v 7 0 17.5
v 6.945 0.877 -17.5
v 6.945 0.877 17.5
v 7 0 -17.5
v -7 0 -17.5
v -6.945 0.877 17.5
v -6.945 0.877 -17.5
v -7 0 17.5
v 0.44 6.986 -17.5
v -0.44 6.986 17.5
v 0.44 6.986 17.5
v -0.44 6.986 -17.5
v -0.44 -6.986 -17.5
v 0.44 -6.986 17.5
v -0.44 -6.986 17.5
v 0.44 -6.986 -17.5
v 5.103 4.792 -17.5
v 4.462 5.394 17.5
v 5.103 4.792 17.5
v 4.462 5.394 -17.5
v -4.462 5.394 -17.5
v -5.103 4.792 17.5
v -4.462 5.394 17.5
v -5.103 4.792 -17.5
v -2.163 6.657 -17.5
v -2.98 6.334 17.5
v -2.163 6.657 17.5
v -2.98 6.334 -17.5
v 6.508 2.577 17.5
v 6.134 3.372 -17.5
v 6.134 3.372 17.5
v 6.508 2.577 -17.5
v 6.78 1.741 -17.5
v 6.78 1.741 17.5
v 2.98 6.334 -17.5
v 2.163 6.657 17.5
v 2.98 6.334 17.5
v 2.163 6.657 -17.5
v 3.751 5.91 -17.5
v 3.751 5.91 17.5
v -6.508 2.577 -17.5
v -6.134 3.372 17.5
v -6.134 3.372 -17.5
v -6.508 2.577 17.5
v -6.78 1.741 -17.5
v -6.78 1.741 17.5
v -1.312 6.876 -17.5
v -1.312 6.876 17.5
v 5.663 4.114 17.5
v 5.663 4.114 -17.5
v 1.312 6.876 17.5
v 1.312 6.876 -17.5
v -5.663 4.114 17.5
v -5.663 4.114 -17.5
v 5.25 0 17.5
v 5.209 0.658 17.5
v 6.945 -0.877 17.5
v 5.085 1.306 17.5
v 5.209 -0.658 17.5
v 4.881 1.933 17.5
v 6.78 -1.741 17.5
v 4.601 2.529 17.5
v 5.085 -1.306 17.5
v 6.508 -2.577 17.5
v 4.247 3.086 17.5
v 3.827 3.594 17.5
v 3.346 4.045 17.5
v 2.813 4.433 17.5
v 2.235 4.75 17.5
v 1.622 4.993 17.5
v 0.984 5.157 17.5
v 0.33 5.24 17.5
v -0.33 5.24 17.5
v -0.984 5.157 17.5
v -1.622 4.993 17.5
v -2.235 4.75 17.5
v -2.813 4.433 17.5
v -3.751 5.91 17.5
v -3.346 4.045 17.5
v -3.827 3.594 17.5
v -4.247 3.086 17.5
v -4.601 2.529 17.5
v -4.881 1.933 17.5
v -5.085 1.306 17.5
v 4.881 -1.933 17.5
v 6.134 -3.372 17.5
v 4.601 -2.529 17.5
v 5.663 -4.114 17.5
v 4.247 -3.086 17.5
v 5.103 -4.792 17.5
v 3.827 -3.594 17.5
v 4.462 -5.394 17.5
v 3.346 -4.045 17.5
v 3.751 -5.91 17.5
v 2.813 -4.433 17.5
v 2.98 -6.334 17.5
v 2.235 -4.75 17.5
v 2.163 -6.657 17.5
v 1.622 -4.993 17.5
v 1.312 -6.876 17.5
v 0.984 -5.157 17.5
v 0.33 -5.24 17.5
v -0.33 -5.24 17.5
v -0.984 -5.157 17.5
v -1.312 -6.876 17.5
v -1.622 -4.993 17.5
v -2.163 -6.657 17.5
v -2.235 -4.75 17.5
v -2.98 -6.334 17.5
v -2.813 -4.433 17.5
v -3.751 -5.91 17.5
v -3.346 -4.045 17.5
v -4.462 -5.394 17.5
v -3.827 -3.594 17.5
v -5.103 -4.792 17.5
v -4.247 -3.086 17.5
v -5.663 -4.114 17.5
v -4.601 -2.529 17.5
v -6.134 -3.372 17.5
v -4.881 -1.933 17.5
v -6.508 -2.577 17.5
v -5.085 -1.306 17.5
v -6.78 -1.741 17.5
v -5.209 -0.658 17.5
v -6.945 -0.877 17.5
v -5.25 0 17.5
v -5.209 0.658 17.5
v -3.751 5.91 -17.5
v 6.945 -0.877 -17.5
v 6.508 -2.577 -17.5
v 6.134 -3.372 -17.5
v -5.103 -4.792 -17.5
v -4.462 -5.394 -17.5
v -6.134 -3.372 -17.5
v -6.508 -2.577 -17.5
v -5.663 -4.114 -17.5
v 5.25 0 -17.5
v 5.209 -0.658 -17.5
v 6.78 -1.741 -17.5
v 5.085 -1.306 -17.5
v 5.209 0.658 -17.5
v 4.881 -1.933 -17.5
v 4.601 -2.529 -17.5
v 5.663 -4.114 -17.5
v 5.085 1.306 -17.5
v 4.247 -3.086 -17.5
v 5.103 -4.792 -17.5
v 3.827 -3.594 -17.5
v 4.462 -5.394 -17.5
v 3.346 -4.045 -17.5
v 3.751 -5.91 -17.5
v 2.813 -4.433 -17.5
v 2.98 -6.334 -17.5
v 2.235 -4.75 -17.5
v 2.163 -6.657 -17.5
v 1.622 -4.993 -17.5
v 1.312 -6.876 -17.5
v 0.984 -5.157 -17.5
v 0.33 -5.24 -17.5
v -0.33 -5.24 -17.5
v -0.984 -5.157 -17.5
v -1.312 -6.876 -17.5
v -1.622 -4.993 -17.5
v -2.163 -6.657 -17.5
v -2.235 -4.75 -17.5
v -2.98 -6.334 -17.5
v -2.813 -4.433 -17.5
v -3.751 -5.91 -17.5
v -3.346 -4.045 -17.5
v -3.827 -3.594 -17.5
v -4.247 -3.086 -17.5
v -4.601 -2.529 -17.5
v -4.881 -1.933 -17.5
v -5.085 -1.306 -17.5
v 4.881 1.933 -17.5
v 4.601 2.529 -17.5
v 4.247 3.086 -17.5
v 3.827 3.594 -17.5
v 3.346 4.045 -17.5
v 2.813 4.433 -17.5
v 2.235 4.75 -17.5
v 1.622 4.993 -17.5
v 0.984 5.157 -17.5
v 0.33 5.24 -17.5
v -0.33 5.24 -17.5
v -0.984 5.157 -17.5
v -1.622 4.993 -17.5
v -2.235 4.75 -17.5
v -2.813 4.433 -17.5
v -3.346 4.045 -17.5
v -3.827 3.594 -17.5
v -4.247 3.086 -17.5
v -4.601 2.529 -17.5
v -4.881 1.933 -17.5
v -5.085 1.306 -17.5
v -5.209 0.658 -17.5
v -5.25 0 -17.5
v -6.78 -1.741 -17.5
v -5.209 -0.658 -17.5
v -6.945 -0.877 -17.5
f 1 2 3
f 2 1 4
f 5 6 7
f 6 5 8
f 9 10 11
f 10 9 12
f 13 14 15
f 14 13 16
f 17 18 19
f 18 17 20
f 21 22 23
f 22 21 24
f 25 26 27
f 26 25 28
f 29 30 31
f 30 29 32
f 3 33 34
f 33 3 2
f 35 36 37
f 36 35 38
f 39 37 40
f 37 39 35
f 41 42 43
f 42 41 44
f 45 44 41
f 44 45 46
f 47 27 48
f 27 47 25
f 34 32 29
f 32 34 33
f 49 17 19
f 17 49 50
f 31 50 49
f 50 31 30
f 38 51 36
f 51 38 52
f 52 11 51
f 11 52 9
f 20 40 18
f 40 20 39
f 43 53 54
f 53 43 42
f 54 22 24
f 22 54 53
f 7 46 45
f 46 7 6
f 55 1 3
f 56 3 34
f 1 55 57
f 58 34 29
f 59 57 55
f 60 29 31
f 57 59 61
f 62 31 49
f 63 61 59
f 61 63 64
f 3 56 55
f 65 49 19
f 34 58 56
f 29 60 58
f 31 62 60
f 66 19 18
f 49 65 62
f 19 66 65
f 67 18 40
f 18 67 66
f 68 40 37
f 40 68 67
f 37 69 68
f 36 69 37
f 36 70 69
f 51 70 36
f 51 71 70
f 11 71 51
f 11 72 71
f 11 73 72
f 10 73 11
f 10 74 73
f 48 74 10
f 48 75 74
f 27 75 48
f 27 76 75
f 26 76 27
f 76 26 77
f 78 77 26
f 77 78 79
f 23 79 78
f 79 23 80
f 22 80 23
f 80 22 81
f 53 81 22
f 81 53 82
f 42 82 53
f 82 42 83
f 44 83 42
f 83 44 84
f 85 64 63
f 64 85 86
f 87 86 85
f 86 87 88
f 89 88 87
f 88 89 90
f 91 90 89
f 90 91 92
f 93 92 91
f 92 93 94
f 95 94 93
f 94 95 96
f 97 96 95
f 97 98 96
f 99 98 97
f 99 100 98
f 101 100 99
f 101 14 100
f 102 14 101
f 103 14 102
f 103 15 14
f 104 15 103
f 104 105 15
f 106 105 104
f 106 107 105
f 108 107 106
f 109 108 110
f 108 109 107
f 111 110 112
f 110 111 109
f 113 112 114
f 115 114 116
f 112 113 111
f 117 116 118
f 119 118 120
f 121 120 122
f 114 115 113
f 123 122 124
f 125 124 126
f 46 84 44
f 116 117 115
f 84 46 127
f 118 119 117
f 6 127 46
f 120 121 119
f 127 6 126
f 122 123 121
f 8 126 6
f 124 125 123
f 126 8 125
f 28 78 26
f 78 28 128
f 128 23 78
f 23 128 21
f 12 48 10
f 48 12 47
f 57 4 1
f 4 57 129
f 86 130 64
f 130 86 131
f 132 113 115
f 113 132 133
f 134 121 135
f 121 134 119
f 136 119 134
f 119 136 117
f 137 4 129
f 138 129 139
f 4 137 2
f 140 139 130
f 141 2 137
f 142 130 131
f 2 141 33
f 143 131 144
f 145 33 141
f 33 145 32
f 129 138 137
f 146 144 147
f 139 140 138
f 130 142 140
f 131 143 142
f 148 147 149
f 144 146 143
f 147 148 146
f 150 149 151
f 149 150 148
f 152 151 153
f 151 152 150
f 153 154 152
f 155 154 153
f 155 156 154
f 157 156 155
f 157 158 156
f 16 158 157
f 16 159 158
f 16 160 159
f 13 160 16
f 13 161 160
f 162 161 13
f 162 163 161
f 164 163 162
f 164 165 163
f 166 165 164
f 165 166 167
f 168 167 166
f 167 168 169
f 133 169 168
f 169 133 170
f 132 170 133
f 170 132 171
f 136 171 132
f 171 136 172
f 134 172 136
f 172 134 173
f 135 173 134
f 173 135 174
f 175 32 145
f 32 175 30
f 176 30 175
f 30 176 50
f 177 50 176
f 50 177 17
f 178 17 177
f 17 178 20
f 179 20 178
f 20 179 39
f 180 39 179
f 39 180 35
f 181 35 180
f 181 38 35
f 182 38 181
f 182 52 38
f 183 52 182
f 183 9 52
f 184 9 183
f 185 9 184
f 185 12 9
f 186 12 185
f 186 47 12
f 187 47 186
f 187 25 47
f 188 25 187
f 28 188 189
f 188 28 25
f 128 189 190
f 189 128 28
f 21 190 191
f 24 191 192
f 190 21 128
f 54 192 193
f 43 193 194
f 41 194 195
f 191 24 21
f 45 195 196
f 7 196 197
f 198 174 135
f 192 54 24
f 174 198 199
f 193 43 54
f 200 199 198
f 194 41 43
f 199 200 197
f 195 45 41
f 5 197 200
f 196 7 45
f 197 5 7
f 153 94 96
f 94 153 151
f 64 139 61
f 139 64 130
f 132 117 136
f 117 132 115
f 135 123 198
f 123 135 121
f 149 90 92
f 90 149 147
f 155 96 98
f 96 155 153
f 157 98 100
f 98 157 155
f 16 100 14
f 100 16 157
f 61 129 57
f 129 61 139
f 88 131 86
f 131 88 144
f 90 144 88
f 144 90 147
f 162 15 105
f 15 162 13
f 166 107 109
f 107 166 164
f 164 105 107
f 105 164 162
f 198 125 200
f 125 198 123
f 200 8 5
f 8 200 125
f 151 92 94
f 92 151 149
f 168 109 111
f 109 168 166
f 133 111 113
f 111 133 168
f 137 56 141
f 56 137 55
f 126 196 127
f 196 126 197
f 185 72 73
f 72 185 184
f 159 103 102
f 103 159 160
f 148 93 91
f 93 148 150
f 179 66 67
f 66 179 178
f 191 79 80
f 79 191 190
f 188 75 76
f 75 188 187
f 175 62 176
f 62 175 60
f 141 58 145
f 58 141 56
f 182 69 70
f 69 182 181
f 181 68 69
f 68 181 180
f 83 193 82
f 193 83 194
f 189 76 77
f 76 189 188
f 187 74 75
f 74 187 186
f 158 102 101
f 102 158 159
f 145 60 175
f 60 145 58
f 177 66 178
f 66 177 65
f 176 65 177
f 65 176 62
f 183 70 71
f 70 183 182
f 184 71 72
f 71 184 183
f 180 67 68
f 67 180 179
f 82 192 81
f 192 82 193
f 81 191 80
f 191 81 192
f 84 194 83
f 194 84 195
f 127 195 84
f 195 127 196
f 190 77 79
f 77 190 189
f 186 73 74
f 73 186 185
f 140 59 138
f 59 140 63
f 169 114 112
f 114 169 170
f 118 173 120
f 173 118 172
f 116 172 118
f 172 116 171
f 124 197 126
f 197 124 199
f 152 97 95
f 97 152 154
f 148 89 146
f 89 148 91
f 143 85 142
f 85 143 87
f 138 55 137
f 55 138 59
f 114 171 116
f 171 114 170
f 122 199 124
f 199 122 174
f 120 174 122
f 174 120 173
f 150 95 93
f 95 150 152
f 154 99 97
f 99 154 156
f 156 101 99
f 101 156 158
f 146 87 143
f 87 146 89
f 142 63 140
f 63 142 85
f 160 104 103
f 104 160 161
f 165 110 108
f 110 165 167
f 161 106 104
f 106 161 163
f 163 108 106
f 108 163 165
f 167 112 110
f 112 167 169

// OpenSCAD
$fn = 50;


difference() {
	union() {
		translate(v = [0, 0, -17.5000000000]) {
			cylinder(h = 35, r = 7.0000000000);
		}
	}
	union() {
		translate(v = [0, 0, -100.0000000000]) {
			cylinder(h = 200, r = 5.2500000000);
		}
	}
}
